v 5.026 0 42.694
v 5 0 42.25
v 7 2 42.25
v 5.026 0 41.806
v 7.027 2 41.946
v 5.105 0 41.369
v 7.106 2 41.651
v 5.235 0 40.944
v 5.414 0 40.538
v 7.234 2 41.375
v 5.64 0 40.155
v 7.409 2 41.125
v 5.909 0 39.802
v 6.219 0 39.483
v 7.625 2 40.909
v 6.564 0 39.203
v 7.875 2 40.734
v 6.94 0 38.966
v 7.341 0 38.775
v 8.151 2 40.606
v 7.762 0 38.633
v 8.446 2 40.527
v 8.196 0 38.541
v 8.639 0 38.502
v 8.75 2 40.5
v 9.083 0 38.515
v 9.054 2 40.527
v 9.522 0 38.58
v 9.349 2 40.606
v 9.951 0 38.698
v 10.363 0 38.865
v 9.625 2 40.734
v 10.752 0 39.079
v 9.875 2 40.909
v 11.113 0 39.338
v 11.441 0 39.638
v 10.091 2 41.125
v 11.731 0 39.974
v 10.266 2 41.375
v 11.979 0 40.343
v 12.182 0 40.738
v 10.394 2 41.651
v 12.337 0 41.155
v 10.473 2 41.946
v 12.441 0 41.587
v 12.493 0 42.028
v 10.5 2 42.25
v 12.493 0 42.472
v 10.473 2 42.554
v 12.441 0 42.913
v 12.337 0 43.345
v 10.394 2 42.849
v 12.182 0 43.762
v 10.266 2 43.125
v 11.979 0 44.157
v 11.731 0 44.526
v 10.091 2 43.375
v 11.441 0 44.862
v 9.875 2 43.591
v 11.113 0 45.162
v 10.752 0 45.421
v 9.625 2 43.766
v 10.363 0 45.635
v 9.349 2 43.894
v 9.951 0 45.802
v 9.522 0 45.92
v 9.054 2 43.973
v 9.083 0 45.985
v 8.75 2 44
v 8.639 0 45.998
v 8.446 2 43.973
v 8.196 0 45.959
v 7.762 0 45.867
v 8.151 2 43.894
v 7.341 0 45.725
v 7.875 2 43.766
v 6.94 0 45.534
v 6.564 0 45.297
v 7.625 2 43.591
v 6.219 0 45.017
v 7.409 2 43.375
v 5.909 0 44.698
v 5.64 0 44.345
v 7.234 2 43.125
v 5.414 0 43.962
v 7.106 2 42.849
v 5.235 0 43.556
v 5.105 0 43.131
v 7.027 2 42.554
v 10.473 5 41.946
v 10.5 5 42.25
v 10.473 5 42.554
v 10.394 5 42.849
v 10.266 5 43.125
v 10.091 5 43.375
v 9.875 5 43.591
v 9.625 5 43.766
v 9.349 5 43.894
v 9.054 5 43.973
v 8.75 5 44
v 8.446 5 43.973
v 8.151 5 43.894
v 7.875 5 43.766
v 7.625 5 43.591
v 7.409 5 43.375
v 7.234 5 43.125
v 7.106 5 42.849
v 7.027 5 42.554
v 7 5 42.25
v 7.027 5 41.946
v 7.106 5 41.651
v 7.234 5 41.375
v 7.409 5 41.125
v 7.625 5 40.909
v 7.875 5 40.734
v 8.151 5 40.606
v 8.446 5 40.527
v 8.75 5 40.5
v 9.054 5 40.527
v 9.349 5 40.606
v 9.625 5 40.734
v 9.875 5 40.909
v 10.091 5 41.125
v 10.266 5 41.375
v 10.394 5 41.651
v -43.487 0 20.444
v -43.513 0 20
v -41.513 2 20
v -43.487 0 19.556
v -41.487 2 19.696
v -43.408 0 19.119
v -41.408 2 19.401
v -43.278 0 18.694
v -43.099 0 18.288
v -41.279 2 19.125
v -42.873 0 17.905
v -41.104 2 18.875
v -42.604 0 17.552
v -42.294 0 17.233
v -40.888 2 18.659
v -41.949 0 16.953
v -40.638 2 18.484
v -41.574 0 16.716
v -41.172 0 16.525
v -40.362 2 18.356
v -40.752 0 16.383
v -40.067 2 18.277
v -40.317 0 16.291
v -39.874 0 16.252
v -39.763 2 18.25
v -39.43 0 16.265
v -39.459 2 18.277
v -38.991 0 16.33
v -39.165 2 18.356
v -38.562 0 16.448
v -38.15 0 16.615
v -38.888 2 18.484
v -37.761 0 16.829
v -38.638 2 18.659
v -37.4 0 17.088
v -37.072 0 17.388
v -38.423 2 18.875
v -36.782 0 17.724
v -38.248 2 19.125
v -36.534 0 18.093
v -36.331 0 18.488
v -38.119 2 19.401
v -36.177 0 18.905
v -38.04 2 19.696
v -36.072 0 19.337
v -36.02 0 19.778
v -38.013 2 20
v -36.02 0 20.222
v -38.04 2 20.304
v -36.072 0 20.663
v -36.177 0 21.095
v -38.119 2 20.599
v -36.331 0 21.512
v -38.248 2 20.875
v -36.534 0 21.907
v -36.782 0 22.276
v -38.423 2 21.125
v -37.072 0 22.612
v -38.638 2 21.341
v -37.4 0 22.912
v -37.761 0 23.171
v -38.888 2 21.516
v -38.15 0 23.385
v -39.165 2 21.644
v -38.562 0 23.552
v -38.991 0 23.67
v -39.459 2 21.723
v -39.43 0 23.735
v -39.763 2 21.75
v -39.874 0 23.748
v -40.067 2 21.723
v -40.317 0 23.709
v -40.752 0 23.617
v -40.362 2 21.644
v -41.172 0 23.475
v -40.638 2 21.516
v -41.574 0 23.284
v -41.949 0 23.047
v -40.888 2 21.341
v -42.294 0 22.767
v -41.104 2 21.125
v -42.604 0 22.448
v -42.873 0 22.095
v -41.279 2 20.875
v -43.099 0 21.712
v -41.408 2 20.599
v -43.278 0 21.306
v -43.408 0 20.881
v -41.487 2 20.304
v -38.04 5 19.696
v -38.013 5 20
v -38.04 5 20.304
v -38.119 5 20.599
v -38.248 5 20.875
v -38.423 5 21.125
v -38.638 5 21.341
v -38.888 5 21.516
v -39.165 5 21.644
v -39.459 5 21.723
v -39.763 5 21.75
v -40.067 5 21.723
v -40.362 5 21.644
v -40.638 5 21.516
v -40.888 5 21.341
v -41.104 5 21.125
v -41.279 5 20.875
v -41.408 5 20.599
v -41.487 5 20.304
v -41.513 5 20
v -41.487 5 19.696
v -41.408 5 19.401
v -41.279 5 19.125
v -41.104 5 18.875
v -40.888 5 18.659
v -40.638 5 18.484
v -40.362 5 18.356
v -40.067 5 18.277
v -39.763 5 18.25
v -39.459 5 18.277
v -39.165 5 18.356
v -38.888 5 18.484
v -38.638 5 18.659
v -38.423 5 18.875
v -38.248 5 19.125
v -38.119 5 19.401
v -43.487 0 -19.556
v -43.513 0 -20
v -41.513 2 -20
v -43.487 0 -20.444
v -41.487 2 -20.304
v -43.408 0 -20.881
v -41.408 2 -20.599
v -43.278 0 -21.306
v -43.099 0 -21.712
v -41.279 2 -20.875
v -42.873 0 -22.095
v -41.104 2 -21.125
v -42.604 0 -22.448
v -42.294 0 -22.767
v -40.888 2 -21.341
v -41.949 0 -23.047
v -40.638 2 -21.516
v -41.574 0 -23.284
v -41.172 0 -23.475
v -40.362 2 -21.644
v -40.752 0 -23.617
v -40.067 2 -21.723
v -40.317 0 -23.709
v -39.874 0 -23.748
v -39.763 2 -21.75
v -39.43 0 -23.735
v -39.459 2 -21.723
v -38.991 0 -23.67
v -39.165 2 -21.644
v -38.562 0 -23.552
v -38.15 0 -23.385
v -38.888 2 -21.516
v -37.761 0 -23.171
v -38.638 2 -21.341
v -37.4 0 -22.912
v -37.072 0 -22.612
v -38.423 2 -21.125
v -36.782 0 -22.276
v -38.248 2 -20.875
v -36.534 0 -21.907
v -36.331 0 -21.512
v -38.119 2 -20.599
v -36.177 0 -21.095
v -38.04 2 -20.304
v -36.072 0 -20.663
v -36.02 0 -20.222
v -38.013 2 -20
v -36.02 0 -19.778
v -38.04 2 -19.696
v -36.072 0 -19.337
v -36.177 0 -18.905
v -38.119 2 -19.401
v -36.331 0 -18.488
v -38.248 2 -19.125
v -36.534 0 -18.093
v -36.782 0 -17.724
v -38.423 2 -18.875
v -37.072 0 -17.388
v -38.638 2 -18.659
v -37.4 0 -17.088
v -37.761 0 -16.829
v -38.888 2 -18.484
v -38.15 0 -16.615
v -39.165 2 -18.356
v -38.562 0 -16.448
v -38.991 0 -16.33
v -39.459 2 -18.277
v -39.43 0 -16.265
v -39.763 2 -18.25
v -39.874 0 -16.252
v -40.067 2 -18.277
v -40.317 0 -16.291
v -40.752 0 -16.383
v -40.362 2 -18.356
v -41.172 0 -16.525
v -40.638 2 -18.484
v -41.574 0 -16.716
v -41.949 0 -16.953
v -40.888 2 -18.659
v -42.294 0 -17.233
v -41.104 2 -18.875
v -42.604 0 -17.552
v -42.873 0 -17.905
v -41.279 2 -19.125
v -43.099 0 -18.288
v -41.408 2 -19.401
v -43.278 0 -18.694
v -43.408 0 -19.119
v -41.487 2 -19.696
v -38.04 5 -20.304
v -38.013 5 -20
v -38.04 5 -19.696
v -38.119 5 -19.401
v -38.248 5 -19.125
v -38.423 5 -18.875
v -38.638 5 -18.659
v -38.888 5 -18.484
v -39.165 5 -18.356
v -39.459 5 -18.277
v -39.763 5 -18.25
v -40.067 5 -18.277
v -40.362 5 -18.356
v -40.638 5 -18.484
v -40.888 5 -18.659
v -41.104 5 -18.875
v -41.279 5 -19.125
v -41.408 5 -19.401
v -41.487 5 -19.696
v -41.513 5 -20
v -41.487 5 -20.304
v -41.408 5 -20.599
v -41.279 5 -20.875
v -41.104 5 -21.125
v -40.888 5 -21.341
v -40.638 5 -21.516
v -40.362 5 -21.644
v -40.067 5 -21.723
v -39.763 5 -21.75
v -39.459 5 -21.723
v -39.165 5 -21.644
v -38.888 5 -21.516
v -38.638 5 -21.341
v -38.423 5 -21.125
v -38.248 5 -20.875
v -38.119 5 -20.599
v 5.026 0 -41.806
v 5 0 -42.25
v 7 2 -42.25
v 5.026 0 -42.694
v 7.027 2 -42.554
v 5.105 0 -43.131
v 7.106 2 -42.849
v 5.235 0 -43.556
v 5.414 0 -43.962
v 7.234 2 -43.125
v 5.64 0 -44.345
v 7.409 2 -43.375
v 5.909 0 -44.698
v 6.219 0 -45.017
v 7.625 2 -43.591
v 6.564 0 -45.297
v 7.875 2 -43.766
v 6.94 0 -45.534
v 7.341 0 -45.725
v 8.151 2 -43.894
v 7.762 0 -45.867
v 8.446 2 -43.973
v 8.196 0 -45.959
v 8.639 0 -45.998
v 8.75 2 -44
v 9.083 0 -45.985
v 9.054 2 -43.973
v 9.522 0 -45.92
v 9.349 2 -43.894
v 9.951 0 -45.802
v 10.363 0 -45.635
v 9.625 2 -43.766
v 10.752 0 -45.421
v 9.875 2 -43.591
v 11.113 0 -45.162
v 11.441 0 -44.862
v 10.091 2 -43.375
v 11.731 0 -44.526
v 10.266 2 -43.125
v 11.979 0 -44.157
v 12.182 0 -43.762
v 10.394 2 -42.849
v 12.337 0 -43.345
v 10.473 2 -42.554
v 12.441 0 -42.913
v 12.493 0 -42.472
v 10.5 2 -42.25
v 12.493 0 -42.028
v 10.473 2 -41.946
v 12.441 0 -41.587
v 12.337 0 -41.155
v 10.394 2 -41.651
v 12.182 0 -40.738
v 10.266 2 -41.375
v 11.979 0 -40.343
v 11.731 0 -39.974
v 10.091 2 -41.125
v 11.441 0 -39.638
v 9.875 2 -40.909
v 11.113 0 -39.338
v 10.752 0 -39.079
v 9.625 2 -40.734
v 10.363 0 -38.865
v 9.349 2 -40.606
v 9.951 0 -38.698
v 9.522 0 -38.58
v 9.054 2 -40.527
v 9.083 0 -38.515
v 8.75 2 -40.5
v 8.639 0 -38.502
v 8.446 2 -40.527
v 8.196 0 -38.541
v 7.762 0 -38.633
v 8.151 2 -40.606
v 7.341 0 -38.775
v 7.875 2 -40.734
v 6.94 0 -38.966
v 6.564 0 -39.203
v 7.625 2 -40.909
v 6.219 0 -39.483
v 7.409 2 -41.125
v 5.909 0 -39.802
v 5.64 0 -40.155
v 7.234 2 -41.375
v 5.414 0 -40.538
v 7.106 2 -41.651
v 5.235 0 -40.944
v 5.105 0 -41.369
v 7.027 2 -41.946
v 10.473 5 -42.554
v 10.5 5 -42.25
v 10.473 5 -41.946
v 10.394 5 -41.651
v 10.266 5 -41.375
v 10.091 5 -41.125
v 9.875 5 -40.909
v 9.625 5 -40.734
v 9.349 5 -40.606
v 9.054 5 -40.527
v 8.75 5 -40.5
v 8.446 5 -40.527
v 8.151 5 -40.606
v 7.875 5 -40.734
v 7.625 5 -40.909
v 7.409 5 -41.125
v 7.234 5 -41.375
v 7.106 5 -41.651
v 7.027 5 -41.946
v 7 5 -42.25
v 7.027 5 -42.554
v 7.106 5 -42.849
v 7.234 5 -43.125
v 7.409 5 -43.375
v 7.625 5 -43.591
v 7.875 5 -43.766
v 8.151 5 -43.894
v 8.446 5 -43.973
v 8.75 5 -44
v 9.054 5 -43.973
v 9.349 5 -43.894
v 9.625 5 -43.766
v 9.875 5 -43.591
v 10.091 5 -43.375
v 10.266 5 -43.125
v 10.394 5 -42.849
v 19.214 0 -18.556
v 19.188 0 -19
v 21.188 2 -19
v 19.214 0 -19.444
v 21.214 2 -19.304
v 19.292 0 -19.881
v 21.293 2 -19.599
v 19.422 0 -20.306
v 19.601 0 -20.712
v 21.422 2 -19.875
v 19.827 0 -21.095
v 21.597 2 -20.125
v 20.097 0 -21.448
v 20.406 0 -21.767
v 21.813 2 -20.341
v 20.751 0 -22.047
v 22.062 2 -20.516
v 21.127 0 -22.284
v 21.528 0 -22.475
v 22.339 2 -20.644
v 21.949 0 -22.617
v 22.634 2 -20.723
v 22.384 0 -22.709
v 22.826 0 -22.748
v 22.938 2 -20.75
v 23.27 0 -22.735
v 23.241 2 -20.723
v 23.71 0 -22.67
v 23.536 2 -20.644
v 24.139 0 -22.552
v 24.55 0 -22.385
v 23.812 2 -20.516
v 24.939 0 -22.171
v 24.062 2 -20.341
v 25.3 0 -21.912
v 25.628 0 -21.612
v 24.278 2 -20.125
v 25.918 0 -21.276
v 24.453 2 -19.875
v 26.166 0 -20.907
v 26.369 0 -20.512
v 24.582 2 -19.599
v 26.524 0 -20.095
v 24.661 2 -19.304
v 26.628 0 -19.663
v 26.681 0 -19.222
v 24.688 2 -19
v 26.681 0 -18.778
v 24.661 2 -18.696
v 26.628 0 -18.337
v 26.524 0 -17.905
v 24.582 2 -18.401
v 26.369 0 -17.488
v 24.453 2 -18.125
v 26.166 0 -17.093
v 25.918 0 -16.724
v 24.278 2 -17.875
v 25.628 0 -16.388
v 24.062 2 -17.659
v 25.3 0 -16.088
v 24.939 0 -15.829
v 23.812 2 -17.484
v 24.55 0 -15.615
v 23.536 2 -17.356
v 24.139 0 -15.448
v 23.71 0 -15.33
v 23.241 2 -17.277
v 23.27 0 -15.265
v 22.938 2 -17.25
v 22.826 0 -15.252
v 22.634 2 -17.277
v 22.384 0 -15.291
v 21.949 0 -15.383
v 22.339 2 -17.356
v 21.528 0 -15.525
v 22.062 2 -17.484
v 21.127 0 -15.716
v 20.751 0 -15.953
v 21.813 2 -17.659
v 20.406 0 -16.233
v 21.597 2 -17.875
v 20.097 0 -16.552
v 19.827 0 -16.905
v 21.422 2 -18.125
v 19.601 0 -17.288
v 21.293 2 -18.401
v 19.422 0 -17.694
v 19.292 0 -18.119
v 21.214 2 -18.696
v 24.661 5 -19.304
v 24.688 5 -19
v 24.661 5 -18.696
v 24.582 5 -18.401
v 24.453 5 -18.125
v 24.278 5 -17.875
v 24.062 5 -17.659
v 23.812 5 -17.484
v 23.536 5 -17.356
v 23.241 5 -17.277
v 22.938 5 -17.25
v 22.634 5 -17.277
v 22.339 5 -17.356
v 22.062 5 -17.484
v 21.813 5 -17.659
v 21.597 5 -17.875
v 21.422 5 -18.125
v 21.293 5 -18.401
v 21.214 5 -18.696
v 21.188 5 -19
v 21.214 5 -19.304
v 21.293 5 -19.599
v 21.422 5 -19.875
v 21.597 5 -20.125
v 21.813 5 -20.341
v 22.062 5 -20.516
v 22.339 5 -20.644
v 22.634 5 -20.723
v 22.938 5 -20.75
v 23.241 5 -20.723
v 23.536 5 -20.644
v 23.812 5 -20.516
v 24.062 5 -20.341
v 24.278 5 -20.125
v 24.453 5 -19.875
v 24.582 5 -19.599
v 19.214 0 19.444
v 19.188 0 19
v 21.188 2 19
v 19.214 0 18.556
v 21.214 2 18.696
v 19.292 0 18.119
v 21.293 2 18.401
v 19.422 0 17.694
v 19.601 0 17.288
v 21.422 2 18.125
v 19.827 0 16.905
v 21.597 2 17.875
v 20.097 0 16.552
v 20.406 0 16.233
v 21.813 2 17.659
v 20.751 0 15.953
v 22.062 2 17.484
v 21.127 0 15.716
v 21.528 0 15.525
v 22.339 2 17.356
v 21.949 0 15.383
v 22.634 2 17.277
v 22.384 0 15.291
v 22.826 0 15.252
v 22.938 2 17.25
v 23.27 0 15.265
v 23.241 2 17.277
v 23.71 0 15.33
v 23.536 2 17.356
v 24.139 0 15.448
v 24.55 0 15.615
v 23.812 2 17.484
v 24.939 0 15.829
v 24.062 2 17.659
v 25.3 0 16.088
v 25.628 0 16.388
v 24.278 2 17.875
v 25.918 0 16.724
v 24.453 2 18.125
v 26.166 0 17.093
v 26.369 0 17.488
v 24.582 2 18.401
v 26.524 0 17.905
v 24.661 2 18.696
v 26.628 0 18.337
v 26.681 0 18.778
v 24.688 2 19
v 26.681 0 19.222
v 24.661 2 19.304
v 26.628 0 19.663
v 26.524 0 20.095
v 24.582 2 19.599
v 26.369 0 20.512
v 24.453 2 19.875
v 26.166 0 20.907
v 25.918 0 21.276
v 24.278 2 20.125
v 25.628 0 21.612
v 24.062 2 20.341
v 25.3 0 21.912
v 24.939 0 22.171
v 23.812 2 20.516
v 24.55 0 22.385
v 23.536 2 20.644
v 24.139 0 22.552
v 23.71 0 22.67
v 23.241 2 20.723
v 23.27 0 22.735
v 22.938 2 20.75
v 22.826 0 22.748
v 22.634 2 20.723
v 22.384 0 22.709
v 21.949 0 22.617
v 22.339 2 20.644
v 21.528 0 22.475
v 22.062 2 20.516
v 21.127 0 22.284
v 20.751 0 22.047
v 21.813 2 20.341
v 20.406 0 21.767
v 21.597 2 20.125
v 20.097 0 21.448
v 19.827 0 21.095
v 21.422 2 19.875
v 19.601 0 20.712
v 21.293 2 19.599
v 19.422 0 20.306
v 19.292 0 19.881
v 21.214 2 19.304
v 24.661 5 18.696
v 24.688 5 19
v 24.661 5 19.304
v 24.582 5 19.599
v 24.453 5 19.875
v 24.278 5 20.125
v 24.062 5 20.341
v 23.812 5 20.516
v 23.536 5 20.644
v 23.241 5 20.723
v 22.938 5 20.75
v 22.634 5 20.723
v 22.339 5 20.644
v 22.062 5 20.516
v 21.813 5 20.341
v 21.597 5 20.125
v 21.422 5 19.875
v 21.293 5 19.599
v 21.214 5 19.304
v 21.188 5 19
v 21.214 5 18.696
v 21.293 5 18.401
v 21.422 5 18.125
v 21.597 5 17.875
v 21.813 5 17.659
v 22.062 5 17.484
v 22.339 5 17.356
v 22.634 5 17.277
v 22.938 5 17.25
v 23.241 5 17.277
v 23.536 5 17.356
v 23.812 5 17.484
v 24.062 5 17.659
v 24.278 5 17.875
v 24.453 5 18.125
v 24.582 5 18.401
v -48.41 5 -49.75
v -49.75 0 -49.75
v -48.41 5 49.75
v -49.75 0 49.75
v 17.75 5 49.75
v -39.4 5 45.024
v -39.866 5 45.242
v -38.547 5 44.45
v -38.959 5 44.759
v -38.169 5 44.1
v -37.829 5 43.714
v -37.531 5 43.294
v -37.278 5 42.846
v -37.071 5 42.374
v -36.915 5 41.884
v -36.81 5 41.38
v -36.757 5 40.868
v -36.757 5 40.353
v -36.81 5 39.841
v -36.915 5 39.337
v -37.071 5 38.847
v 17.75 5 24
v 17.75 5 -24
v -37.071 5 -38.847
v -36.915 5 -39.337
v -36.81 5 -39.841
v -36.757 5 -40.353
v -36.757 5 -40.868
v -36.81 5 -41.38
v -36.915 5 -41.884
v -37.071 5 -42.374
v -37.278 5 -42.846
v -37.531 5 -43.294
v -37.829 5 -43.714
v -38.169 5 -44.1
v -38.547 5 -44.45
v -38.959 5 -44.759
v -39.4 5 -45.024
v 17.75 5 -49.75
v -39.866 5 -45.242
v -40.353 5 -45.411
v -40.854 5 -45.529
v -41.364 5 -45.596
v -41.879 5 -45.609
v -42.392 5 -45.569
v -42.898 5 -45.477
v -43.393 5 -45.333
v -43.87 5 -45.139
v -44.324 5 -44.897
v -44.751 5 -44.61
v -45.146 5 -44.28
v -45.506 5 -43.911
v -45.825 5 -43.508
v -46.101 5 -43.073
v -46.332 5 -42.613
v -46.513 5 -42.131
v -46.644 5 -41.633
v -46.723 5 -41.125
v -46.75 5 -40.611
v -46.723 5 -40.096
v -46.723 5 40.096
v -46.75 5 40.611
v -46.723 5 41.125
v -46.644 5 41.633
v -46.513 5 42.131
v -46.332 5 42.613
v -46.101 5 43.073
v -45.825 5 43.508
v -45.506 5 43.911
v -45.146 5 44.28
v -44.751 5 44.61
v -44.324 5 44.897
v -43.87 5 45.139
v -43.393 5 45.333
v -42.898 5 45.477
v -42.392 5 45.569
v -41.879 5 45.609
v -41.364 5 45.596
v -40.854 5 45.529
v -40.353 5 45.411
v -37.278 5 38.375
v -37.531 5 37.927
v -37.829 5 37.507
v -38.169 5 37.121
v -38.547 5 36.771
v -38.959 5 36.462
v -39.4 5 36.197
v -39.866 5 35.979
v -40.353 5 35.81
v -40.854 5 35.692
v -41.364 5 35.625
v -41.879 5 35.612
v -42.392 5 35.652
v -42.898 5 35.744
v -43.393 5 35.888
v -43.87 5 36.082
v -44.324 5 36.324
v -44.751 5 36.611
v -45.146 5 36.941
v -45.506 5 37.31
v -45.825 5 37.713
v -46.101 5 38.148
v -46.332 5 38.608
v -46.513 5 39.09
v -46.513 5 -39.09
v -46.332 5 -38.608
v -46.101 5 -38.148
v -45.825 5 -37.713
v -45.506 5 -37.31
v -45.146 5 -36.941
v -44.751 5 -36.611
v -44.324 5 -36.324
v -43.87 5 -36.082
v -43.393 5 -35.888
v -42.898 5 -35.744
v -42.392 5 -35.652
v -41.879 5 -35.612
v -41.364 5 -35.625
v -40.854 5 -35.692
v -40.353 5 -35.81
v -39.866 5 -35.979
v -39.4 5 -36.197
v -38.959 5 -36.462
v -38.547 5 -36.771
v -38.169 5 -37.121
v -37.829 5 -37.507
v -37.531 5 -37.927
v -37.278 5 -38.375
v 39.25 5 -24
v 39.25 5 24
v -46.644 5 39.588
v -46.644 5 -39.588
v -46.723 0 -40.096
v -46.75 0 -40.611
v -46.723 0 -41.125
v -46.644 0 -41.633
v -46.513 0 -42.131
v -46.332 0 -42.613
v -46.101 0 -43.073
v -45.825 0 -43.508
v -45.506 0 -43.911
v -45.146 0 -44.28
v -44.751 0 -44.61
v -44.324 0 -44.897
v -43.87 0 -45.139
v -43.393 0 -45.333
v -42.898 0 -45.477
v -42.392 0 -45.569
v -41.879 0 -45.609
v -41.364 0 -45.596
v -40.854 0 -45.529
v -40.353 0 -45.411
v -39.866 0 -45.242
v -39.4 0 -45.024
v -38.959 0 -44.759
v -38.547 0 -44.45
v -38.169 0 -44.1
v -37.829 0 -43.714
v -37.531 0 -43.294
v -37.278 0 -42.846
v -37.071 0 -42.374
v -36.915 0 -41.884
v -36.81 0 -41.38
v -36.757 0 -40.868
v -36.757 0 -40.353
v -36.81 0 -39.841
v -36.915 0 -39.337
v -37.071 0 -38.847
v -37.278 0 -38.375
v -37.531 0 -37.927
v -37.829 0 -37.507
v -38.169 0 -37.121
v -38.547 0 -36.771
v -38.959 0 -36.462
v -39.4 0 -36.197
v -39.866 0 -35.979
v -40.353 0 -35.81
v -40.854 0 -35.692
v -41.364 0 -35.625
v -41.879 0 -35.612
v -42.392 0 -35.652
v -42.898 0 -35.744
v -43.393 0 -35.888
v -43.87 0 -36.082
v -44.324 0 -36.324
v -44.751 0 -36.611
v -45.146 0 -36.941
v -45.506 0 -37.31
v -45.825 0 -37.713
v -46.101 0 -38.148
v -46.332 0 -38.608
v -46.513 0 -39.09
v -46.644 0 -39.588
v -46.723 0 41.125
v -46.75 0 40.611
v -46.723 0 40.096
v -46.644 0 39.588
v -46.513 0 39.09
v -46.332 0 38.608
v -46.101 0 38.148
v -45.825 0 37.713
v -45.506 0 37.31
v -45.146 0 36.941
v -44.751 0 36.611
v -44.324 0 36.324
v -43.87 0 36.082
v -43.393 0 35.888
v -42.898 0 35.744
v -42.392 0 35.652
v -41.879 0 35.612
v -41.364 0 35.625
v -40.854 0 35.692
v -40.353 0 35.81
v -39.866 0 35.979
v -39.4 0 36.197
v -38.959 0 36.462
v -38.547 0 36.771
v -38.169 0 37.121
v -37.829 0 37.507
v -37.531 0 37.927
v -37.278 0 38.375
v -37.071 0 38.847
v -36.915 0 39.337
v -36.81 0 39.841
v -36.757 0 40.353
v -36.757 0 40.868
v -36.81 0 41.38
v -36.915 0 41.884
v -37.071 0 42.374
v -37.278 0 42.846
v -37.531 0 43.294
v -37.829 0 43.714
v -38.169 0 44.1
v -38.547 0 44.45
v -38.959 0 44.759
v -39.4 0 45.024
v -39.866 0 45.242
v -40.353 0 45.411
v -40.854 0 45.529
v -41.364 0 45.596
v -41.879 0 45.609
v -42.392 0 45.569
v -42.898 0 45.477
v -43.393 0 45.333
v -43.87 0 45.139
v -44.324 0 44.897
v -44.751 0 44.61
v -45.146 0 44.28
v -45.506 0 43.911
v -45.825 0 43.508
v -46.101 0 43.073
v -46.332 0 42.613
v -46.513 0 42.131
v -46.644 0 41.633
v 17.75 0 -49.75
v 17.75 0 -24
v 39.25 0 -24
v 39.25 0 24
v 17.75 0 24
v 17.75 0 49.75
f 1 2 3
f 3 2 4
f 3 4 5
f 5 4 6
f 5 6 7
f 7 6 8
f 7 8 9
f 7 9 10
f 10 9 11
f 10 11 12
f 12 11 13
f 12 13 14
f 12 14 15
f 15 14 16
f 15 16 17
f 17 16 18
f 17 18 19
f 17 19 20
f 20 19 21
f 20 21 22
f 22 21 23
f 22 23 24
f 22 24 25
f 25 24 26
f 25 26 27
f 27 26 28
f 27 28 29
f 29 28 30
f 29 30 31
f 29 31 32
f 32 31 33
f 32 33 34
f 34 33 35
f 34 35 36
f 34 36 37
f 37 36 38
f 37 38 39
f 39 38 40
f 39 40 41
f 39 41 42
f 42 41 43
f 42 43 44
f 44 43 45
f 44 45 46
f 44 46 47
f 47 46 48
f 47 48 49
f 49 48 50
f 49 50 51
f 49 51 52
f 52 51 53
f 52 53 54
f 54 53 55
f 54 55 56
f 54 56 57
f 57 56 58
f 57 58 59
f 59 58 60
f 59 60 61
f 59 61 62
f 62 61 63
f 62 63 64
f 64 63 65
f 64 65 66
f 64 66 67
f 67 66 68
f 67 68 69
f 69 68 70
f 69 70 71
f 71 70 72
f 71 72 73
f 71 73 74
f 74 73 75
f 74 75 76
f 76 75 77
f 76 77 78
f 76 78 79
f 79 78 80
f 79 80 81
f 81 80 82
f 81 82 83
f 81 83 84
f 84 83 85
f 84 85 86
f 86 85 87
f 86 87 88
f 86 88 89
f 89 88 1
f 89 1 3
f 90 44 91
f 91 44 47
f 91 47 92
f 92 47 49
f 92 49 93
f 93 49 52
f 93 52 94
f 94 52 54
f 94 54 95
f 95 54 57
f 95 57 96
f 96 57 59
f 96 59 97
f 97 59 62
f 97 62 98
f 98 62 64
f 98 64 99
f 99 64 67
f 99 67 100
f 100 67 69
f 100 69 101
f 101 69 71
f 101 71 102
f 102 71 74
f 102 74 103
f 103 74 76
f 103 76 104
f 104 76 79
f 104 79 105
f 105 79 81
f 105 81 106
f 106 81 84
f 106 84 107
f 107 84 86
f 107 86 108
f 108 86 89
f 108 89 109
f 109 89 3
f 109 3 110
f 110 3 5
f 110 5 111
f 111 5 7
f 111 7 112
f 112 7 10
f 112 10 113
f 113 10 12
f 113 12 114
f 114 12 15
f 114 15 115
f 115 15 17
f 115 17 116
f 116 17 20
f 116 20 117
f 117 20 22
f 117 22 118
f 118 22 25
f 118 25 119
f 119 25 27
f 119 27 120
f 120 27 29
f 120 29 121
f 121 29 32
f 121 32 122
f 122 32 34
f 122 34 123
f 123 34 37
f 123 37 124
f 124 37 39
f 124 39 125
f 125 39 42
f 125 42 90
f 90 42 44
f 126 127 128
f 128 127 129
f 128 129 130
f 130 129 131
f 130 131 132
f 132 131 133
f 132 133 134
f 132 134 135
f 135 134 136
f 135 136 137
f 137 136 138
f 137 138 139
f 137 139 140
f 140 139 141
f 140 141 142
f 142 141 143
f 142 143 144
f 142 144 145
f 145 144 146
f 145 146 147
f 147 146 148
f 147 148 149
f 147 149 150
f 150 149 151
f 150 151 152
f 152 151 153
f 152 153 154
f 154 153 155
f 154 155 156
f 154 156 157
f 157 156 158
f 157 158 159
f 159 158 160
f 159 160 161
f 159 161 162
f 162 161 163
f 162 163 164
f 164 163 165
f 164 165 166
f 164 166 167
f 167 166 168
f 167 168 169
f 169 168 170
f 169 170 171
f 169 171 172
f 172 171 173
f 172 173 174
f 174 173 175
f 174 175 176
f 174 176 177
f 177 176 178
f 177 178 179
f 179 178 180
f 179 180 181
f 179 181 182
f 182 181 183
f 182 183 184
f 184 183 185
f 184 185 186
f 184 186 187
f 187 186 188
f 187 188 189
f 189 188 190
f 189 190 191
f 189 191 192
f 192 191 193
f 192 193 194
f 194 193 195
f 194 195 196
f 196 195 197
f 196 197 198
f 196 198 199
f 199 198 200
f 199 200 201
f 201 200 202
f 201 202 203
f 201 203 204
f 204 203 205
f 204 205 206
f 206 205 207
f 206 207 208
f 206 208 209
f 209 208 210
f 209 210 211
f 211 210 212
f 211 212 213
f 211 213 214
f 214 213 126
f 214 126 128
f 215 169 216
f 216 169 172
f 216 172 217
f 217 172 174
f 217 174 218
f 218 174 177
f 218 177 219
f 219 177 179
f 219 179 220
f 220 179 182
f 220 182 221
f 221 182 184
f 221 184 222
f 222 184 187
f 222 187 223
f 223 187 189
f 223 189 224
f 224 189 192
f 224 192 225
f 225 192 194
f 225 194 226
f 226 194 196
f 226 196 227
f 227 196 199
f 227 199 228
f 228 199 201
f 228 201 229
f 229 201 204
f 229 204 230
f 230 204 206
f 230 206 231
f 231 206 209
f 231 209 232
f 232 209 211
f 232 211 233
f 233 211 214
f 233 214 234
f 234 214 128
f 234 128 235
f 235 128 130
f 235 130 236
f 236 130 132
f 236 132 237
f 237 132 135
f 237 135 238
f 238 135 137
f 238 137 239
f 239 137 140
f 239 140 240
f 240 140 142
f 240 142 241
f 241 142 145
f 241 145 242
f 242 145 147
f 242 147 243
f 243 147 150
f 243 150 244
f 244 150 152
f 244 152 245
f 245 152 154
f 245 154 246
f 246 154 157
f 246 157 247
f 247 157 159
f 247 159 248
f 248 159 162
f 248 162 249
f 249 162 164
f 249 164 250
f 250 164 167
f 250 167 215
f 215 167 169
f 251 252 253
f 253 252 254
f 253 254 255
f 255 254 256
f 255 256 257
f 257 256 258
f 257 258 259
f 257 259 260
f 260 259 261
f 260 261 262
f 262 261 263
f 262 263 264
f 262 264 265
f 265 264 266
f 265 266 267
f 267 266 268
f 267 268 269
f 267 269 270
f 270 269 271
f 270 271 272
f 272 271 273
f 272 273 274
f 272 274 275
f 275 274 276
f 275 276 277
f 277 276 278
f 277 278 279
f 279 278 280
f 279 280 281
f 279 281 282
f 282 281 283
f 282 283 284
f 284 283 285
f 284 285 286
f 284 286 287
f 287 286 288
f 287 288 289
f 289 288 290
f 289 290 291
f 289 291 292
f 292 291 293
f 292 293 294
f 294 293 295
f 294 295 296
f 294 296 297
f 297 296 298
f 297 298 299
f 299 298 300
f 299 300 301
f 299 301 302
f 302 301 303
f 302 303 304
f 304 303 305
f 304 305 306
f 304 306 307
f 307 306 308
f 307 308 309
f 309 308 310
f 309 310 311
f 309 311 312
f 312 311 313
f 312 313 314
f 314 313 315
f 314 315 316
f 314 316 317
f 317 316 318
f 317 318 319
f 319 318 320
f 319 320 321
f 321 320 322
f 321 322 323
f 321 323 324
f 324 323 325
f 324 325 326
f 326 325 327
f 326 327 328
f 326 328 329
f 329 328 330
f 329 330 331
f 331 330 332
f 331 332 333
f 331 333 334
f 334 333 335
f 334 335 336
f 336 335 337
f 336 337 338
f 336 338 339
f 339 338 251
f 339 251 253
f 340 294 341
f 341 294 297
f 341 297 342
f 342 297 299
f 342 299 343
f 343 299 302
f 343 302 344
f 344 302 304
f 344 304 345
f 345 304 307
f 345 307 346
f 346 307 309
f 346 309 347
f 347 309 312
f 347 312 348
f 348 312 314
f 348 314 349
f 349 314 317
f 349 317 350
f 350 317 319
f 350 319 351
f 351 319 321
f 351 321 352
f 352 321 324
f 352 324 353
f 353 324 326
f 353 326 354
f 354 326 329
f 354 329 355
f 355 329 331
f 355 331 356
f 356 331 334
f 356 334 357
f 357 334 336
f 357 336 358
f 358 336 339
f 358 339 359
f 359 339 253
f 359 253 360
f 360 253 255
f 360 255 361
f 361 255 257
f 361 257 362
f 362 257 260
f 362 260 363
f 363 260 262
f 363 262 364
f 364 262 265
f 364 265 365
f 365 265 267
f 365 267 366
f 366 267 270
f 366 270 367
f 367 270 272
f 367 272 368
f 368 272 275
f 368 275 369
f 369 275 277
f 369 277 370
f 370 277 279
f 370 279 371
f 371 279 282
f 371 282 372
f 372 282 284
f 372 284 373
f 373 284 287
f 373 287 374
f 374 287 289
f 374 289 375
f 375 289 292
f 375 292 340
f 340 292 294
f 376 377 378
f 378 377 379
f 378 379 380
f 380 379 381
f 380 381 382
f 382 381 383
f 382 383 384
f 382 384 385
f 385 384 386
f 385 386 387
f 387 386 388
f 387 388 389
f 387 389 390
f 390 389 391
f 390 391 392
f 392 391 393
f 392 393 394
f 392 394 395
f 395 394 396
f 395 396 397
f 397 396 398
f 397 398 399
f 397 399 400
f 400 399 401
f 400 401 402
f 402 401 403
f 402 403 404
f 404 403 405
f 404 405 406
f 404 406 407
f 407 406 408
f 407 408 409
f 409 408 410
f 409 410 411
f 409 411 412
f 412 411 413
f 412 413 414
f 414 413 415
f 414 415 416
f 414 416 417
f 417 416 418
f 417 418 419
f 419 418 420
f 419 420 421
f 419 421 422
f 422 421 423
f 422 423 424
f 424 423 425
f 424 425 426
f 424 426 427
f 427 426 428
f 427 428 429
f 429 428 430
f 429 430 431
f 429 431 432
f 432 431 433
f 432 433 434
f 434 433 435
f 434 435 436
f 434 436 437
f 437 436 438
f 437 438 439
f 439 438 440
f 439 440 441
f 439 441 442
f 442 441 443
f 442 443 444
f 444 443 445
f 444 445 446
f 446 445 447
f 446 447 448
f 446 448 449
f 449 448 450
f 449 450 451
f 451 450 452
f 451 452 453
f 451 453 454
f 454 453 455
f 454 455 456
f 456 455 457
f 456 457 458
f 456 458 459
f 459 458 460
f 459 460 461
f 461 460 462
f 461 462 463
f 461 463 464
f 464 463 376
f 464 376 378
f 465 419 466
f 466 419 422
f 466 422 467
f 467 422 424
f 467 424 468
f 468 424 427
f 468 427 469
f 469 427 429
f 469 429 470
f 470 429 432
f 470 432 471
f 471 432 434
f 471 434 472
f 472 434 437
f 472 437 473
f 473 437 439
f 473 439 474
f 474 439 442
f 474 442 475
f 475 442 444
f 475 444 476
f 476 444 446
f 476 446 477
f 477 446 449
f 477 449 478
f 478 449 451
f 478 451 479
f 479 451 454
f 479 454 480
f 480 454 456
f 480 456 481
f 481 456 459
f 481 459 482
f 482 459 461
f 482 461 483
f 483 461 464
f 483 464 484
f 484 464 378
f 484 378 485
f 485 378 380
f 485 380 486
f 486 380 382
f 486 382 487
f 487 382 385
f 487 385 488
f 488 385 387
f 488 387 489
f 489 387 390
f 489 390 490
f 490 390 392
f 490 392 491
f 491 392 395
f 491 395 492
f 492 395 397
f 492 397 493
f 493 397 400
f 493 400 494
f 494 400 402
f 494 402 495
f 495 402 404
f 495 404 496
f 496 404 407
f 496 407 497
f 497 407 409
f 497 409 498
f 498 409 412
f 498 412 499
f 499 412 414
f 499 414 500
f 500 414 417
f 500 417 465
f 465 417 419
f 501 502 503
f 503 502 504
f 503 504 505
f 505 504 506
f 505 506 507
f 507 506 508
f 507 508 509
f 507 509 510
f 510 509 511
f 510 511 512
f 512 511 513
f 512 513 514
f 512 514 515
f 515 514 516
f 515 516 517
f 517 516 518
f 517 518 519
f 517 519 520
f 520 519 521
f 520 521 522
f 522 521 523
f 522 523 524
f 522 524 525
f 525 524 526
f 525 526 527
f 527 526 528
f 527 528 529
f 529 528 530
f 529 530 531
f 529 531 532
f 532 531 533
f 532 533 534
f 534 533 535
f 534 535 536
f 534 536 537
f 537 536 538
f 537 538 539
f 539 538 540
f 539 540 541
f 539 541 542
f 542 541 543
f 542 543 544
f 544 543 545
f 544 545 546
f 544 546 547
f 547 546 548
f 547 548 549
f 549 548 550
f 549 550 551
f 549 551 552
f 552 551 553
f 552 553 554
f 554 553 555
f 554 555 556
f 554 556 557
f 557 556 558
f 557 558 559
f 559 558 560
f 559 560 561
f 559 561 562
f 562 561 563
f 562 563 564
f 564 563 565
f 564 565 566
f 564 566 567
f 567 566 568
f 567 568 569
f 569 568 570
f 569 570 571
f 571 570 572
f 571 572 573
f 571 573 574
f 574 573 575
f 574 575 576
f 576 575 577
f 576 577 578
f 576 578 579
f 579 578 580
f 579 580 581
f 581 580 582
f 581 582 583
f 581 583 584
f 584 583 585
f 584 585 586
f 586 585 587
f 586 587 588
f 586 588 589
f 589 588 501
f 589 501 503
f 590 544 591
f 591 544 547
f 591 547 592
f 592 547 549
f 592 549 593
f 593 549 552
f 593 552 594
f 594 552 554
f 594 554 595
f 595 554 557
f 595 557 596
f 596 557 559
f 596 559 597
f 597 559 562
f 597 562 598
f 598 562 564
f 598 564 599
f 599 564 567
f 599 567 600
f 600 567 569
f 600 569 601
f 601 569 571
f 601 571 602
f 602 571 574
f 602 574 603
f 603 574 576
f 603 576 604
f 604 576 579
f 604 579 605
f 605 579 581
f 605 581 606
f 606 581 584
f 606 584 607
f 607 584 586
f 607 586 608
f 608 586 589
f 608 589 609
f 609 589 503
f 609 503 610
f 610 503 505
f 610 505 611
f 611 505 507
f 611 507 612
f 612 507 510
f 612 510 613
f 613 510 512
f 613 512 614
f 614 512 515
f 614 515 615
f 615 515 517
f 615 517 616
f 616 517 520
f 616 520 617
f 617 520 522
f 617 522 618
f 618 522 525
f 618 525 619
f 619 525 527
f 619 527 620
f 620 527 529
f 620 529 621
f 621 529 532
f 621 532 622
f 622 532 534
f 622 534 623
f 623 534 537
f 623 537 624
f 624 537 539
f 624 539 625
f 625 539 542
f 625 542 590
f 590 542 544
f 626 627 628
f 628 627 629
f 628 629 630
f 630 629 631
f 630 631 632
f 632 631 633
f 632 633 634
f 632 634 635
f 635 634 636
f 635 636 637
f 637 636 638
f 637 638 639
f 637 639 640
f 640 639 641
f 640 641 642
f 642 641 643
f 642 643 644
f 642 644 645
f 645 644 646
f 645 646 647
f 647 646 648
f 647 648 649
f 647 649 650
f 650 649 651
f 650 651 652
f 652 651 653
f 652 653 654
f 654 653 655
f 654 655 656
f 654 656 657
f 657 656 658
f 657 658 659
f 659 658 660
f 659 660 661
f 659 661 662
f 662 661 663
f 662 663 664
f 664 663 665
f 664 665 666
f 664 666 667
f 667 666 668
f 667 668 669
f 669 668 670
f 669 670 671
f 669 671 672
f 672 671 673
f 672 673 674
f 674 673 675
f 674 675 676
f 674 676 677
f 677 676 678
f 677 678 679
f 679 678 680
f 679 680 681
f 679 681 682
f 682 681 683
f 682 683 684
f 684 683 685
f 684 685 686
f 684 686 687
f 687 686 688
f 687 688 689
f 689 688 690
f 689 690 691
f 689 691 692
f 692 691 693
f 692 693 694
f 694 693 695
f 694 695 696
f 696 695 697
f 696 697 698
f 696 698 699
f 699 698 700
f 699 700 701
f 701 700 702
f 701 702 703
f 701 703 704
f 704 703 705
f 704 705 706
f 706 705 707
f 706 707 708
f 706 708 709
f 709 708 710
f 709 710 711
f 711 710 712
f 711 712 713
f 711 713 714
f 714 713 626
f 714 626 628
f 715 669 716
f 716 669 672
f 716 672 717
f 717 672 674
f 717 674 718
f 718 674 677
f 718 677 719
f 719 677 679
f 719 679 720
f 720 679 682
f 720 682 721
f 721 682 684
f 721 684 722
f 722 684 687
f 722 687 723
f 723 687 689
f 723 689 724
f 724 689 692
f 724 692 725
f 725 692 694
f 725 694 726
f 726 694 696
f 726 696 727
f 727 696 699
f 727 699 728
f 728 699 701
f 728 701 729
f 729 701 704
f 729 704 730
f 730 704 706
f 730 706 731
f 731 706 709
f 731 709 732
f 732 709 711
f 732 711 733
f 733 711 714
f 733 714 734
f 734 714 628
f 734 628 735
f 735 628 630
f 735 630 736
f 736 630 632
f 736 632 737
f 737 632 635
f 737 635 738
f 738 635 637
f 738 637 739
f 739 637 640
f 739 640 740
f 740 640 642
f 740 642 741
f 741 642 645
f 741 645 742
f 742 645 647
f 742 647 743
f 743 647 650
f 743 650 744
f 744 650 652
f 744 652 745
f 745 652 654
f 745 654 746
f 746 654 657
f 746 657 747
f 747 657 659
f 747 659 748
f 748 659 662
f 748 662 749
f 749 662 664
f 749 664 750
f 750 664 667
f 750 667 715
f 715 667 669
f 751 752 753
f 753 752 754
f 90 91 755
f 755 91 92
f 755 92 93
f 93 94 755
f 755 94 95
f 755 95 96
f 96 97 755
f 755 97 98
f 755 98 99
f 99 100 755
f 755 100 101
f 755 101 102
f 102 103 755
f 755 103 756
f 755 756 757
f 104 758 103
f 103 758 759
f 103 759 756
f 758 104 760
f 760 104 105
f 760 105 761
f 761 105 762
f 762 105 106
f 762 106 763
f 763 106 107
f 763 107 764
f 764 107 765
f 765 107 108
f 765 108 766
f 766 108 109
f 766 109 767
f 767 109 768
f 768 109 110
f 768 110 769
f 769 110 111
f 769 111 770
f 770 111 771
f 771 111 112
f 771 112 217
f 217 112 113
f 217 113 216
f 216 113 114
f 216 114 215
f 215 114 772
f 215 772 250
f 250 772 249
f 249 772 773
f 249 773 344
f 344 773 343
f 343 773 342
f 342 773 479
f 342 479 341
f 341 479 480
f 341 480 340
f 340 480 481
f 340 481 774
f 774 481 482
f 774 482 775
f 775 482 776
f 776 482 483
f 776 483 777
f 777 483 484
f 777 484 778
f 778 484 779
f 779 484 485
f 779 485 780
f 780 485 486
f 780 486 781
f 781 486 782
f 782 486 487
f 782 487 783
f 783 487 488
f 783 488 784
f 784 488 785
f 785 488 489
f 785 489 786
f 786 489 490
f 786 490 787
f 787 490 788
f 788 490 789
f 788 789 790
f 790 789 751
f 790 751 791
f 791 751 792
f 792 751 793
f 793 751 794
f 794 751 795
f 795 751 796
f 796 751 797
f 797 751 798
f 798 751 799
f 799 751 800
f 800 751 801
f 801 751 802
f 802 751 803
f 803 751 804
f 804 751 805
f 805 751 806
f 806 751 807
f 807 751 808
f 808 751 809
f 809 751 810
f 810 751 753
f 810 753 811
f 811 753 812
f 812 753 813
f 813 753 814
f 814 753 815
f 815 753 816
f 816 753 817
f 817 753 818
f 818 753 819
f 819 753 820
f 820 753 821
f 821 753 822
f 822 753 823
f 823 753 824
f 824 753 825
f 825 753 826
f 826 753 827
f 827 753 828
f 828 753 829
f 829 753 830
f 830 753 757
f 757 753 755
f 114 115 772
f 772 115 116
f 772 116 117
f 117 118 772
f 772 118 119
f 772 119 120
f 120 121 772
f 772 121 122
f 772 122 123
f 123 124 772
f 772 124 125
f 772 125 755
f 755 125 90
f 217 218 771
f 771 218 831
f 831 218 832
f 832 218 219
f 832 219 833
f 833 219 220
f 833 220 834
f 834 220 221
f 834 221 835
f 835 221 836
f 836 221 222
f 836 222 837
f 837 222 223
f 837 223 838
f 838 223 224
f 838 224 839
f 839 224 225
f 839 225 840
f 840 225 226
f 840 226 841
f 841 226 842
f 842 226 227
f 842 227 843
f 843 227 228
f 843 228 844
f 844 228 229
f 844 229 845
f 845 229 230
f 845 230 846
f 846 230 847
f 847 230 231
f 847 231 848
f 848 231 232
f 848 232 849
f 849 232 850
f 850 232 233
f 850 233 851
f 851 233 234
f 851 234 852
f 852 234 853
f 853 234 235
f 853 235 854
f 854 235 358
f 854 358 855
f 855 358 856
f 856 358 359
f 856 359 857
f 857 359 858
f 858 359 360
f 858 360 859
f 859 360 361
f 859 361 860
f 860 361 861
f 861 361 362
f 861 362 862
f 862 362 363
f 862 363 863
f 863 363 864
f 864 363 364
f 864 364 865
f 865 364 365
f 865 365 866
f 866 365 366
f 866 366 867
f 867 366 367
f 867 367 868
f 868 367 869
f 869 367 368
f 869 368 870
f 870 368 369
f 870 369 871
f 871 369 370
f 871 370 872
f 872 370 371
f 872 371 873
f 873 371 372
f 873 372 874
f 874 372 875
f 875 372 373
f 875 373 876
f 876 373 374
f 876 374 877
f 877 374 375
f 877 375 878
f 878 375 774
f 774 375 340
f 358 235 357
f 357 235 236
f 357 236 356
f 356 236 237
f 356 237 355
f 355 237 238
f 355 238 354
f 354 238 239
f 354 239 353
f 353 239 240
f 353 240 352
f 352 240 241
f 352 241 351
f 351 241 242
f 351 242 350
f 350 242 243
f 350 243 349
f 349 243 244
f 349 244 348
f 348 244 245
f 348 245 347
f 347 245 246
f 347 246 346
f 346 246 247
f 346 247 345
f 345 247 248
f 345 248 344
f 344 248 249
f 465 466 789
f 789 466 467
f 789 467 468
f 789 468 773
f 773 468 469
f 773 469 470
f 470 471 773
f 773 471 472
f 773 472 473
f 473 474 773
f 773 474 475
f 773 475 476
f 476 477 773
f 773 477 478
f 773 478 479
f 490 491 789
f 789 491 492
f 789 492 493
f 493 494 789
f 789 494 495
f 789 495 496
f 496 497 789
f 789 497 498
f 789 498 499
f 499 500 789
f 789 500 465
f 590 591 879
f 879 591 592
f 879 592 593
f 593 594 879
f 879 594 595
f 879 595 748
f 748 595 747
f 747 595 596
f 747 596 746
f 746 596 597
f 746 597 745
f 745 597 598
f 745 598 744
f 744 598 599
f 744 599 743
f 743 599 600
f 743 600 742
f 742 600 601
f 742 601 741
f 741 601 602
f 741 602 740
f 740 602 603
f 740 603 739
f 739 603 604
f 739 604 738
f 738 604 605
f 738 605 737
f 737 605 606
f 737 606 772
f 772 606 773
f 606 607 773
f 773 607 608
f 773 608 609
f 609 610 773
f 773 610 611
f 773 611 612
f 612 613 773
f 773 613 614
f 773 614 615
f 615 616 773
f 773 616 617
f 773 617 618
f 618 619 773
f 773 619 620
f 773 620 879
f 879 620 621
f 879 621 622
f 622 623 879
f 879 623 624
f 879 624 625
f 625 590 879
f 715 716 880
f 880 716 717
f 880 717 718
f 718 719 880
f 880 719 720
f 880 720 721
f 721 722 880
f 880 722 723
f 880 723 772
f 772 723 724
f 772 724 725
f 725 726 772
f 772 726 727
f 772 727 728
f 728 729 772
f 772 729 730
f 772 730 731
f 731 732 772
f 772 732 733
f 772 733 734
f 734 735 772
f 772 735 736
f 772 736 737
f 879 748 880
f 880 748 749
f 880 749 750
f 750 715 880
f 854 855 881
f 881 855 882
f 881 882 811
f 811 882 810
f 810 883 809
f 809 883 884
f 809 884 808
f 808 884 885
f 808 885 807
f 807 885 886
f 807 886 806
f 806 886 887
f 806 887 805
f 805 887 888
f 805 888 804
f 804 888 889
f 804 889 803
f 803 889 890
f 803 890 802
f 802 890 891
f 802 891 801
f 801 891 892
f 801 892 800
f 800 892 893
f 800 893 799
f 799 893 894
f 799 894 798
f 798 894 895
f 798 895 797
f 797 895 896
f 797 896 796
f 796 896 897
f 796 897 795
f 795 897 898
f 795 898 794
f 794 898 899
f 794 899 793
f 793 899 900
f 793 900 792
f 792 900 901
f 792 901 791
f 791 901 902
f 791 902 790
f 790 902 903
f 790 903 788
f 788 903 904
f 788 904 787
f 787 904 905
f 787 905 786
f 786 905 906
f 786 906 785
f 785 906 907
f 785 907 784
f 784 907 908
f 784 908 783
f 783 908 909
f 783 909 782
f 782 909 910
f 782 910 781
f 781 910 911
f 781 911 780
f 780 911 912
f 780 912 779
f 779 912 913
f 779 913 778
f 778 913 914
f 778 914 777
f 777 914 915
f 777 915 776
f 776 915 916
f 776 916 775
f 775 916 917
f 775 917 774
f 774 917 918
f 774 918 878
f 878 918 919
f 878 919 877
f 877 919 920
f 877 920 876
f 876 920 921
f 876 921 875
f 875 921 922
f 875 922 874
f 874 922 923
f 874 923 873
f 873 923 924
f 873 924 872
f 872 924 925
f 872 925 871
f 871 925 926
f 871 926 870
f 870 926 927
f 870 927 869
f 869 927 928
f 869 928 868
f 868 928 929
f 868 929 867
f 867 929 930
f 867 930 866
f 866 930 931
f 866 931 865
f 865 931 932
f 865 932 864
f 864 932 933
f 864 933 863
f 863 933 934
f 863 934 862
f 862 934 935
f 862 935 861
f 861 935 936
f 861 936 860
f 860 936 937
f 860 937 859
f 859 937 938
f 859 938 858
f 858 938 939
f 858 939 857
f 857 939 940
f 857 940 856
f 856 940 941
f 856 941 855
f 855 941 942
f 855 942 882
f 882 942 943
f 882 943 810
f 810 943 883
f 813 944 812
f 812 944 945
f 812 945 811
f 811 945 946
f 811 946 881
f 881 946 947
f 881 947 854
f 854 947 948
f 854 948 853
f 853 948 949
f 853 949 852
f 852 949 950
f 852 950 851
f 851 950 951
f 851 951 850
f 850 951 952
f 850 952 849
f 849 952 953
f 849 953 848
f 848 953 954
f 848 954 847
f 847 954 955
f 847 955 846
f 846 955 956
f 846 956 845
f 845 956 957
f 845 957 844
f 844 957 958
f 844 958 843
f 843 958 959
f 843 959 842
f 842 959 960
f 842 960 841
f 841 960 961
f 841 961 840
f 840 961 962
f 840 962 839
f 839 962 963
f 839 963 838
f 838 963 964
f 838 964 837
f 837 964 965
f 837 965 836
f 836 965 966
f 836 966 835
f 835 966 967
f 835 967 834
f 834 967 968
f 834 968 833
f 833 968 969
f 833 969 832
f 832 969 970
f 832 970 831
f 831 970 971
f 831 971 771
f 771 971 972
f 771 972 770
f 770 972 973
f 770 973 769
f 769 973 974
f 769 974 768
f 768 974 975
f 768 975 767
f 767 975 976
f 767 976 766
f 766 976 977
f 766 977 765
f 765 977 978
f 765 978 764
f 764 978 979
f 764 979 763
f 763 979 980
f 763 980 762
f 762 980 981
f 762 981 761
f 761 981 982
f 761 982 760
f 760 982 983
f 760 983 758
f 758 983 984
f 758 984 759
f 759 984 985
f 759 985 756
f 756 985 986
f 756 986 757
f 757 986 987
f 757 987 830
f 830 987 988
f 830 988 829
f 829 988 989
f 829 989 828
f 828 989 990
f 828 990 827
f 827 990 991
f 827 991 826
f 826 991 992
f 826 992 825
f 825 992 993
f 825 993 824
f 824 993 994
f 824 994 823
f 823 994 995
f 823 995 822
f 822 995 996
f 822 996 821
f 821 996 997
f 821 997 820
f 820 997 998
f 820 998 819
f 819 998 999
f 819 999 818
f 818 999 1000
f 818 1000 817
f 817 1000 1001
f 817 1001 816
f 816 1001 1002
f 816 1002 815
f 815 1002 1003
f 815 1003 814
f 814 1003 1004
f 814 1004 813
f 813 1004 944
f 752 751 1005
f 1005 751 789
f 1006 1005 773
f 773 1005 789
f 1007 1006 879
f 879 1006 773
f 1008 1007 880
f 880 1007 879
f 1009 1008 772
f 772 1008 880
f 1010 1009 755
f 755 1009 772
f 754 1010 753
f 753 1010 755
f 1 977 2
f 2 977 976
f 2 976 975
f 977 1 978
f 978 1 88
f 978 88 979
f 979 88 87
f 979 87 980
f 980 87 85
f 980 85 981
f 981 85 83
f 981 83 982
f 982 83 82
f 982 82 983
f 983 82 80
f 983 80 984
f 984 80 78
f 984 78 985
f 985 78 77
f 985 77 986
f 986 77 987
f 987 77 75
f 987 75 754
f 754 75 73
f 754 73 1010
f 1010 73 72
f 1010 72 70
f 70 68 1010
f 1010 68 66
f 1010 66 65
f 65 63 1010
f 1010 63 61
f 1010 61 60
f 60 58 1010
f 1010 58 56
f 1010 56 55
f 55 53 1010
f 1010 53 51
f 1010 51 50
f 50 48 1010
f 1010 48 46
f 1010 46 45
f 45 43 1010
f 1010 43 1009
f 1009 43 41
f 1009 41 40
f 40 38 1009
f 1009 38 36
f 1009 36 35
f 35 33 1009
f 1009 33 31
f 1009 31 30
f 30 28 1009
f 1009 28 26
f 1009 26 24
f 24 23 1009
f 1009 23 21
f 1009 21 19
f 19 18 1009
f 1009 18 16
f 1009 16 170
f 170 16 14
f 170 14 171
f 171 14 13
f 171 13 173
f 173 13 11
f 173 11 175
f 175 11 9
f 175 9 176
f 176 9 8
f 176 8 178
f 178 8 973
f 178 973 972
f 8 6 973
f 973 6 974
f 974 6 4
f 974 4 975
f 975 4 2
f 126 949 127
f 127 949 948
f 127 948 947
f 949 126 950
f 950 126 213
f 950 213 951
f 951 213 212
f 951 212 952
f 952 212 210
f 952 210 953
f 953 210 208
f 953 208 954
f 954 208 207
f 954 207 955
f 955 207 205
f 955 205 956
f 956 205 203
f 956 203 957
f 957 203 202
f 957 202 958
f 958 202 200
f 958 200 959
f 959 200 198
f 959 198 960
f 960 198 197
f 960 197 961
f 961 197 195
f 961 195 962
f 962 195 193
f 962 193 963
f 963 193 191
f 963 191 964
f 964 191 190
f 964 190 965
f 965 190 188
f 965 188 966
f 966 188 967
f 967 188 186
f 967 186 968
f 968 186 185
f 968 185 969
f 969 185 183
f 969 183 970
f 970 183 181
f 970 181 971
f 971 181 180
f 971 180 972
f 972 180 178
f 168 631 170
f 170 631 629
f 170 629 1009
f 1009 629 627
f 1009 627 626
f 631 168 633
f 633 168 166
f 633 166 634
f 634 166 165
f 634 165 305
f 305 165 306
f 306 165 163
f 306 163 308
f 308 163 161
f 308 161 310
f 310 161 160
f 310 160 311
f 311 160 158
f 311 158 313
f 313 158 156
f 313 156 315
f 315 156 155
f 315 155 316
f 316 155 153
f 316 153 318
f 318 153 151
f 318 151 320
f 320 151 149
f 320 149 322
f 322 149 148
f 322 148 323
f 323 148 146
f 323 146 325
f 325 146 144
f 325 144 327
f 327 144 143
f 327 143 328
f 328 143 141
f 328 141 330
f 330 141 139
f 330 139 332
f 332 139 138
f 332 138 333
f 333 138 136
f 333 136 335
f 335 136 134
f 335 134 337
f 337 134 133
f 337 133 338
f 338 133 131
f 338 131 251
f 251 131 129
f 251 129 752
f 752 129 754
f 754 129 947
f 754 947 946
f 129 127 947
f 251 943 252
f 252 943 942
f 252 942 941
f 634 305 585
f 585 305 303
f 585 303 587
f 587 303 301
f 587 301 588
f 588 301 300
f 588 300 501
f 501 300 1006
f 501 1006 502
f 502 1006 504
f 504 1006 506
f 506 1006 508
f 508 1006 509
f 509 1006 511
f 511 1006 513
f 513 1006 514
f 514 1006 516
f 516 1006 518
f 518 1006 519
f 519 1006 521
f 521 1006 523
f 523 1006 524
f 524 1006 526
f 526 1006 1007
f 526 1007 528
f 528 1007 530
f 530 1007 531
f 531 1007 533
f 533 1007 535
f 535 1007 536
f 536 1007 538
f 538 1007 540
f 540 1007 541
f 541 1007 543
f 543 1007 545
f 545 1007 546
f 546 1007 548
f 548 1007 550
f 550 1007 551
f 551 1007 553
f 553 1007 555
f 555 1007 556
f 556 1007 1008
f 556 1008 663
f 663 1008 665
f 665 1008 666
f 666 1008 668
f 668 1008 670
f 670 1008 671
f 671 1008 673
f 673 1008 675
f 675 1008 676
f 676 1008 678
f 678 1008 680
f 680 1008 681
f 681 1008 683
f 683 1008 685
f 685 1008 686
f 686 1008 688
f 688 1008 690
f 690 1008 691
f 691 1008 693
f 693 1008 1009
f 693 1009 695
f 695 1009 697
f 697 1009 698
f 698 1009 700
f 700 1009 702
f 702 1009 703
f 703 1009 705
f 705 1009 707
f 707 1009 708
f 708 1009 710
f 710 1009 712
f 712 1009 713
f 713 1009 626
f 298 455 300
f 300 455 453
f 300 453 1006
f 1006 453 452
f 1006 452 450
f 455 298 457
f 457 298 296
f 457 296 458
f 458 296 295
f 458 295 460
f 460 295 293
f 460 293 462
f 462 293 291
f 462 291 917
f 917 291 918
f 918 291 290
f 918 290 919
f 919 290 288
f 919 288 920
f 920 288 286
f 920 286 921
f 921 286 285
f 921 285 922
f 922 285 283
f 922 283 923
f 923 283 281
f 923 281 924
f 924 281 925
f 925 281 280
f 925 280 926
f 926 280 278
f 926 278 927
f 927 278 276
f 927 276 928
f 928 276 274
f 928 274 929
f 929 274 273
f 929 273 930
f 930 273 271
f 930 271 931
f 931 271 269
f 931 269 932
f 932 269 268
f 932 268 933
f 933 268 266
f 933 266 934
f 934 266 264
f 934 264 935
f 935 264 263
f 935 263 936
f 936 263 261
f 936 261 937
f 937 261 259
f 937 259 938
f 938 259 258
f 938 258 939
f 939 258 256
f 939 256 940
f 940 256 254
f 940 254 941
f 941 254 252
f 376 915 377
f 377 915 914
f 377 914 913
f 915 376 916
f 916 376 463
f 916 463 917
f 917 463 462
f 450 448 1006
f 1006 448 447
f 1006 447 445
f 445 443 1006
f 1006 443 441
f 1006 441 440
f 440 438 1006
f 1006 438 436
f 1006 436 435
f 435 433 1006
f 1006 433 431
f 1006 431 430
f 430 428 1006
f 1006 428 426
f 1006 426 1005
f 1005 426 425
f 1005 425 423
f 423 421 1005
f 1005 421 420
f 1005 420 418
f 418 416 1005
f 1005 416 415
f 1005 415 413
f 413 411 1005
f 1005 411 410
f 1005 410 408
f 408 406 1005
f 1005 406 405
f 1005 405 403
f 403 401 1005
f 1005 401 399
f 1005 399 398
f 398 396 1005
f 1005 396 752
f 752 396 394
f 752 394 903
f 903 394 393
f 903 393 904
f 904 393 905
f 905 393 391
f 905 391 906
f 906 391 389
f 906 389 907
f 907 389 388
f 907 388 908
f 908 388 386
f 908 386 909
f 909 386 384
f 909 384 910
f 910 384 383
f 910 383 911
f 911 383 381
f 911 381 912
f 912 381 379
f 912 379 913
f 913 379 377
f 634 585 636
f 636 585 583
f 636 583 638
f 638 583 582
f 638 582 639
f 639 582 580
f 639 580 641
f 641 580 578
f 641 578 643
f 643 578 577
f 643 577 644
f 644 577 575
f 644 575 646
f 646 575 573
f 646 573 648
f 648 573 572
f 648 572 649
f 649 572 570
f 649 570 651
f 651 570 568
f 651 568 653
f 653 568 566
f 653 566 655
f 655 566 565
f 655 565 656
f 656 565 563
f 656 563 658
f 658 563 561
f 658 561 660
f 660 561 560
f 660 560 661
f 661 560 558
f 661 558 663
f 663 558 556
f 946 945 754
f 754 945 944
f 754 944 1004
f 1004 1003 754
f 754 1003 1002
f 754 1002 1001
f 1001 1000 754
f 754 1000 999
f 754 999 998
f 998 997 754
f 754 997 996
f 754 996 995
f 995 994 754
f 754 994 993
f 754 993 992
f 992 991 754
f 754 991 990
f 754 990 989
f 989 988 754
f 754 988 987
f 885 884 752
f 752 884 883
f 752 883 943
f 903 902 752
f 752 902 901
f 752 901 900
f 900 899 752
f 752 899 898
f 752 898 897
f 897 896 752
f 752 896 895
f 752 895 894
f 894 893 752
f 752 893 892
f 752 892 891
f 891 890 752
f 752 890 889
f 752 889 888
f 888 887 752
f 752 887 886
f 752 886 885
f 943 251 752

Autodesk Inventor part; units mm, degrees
ref_plane "YZ Plane" through (0, 0, 0) normal (1, 0, 0) x (0, 1, 0)
ref_plane "XZ Plane" through (0, 0, 0) normal (0, 1, 0) x (-1, 0, 0)
ref_plane "XY Plane" through (0, 0, 0) normal (0, 0, 1) x (1, 0, 0)
sketch "Náčrt1" plane through (0, 0, 0) normal (0, 1, 0) x (-1, 0, 0)
  line L0 (-49.75, 49.75) -> (49.75, 49.75)
  line L1 (49.75, 49.75) -> (49.75, -49.75)
  line L2 (49.75, -49.75) -> (-49.75, -49.75)
  line L3 (-49.75, -49.75) -> (-49.75, 49.75)
  line L4 (-49.75, 49.75) -> (49.75, -49.75) construction
  line L5 (49.75, 49.75) -> (-49.75, -49.75) construction
  line L6 (-17.75, 49.75) -> (-17.75, 24)
  line L7 (-17.75, 24) -> (-49.75, 24)
  line L8 (-49.75, -24) -> (-17.75, -24)
  line L9 (-17.75, -24) -> (-17.75, -49.75)
  circle A0 centre (-22.9375, -19) radius 1.75
  circle A1 centre (-22.9375, 19) radius 1.75
  circle A2 centre (-8.75, -42.25) radius 1.75
  circle A3 centre (39.7631, -20) radius 1.75
  circle A4 centre (39.7631, 20) radius 1.75
  circle A5 centre (-8.75, 42.25) radius 1.75
  circle A6 centre (41.75, 40.6105) radius 5
  circle A7 centre (41.75, -40.6105) radius 5
  line L10 (41.75, 40.6105) -> (41.75, 49.75) construction
  line L11 (41.75, -40.6105) -> (41.75, -49.75) construction
  line L12 (39.7631, 20) -> (39.7631, 0) construction
  line L13 (39.7631, 0) -> (39.7631, -20) construction
  line L14 (-39.25, 24) -> (-39.25, -24)
  point P0 (0, 0)
  point P1 (-33.75, 24)
  dimension "d16" = 75
  dimension "d0" = 99.5
  dimension "d1" = 99.5
  dimension "d2" = 32
  dimension "d5" = 3.5
  dimension "d7" = 7.5
  dimension "d8" = 7.5
  dimension "d9" = 5
  dimension "d10" = 5
  dimension "d11" = 10.8125
  dimension "d12" = 9
  dimension "d13" = 9.9869
  dimension "d26" = 81.221
  dimension "d27" = 10
  dimension "d28" = 8
  dimension "d31" = 40
  dimension "d32" = 48
  dimension "d33" = 10.5
extrude "Vysunutí1" add sketch "Náčrt1" along normal blind 5 contours L0 L1 L2 L9 L8 L14 L7 L6 | A0 | A1 | A2 | A3 | A4 | A5
sketch "Náčrt2" plane through (-49.75, 0, 49.75) normal (0, 0, 1) x (1, 0, 0)
  line L0 (0, 0) -> (67.5, 0) projected
  line L1 (0, 0) -> (1.3397, 5)
  line L2 (0, 5) -> (67.5, 5) projected
  line L3 (0, 0) -> (0, 5) projected
  line L4 (0, 5) -> (0, 0)
  point P0 (49.75, 0)
  point P1 (99.5, 0)
  point P2 (99.5, 5)
  dimension "d16" = 75
extrude "Vysunutí2" cut sketch "Náčrt2" against normal through all
hole "Díra1" at (22.9375, 0, 19) at (22.9375, 0, -19) at (8.75, 0, -42.25) at (-39.7631, 0, -20) at (-39.7631, 0, 20) at (8.75, 0, 42.25) direction (0, 1, 0) diameter 3.5 end through all countersink diameter 7.5 countersink angle 90
properties part number "new_plech" material "Stainless Steel"
